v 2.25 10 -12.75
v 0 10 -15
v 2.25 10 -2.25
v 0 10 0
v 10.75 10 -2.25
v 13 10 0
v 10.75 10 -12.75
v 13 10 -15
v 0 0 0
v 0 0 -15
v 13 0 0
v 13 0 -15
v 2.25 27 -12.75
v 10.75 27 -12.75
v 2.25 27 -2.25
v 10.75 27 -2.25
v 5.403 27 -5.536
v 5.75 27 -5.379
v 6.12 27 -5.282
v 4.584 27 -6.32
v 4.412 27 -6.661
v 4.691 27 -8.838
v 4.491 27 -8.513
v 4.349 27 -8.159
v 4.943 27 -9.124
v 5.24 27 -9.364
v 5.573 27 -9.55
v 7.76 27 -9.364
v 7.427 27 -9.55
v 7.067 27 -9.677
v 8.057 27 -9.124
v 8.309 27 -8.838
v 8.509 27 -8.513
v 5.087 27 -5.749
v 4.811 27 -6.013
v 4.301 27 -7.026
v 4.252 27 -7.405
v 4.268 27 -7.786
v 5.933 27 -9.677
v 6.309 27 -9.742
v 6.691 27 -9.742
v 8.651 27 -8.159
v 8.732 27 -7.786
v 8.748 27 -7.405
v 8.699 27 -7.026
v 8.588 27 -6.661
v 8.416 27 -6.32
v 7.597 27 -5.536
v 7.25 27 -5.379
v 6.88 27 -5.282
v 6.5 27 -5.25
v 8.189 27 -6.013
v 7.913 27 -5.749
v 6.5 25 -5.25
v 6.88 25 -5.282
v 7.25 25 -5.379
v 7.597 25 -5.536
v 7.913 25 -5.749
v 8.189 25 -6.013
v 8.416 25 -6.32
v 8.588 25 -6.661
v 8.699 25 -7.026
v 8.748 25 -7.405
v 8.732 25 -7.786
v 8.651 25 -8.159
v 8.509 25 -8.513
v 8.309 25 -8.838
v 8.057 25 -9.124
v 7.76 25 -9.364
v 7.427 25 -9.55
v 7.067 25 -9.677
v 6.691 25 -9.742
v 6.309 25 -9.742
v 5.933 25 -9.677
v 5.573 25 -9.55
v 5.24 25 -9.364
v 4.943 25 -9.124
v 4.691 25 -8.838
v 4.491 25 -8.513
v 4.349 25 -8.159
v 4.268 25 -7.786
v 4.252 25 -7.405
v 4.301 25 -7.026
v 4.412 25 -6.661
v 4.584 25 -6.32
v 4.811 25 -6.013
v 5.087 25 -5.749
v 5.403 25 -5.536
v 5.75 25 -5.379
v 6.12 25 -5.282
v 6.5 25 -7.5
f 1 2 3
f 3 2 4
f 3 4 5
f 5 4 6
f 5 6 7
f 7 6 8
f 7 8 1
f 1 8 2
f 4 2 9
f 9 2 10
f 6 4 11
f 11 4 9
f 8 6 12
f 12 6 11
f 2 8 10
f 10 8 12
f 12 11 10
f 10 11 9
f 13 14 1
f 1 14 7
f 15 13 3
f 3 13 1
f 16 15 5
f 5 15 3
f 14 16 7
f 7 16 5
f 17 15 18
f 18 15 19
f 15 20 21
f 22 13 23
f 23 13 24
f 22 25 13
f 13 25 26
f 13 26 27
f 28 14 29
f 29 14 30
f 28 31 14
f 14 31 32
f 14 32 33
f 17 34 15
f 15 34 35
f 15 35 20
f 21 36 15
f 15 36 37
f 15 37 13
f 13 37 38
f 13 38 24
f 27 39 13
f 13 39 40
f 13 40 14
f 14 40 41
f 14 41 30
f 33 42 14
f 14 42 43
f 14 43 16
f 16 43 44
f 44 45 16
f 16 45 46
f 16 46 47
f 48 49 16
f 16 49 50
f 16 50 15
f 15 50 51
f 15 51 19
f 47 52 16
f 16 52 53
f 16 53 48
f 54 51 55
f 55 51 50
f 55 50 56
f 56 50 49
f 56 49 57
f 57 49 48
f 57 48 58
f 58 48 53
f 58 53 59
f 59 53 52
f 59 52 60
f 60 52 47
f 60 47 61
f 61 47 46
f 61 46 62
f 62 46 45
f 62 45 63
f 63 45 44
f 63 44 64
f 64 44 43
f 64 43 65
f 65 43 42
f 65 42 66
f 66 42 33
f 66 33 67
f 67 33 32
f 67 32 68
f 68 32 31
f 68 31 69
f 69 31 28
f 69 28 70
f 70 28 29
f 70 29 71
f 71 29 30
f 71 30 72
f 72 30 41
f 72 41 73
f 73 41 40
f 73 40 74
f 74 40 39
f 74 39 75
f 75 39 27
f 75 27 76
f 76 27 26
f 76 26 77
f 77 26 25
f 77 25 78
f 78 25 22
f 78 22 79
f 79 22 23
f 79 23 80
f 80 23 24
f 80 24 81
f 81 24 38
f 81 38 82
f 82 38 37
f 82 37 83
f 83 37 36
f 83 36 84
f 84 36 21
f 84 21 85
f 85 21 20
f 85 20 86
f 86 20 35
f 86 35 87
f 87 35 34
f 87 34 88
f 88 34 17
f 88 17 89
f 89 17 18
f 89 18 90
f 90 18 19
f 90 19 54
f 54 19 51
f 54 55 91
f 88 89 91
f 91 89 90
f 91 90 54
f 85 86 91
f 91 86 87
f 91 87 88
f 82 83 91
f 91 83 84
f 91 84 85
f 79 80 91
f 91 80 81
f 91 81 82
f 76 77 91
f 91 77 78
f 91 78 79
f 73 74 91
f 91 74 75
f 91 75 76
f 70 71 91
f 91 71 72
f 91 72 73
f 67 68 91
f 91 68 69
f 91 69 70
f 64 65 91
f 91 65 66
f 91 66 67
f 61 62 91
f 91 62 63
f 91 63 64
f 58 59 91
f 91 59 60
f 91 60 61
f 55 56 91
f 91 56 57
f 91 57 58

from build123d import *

# Parameters (mm, degrees)
SKETCH1_W           = 13
SKETCH1_H           = 15
BOSS_EXTRUDE1_DEPTH = 10
SKETCH2_W           = 8.5
SKETCH2_H           = 10.5
BOSS_EXTRUDE2_DEPTH = 17
SKETCH3_R           = 2.25
CUT_EXTRUDE1_DEPTH  = 2


with BuildPart() as part:
    # Sketch1 → Boss-Extrude1 (new body)
    with BuildSketch(Plane(origin=(0, 0, 0), x_dir=(1, 0, 0), z_dir=(0, 1, 0))):
        with Locations((6.5, 7.5)):
            Rectangle(SKETCH1_W, SKETCH1_H)
    extrude(amount=BOSS_EXTRUDE1_DEPTH)

    # Sketch2 → Boss-Extrude2 (add)
    with BuildSketch(Plane(origin=(0, 10, 0), x_dir=(1, 0, 0), z_dir=(0, 1, 0))):
        with Locations((6.5, 7.5)):
            Rectangle(SKETCH2_W, SKETCH2_H)
    extrude(amount=BOSS_EXTRUDE2_DEPTH)

    # Sketch3 → Cut-Extrude1 (cut)
    with BuildSketch(Plane(origin=(0, 27, 0), x_dir=(1, 0, 0), z_dir=(0, 1, 0))):
        with Locations((6.5, 7.5)):
            Circle(SKETCH3_R)
    extrude(amount=-CUT_EXTRUDE1_DEPTH, mode=Mode.SUBTRACT)


solid = part.part
